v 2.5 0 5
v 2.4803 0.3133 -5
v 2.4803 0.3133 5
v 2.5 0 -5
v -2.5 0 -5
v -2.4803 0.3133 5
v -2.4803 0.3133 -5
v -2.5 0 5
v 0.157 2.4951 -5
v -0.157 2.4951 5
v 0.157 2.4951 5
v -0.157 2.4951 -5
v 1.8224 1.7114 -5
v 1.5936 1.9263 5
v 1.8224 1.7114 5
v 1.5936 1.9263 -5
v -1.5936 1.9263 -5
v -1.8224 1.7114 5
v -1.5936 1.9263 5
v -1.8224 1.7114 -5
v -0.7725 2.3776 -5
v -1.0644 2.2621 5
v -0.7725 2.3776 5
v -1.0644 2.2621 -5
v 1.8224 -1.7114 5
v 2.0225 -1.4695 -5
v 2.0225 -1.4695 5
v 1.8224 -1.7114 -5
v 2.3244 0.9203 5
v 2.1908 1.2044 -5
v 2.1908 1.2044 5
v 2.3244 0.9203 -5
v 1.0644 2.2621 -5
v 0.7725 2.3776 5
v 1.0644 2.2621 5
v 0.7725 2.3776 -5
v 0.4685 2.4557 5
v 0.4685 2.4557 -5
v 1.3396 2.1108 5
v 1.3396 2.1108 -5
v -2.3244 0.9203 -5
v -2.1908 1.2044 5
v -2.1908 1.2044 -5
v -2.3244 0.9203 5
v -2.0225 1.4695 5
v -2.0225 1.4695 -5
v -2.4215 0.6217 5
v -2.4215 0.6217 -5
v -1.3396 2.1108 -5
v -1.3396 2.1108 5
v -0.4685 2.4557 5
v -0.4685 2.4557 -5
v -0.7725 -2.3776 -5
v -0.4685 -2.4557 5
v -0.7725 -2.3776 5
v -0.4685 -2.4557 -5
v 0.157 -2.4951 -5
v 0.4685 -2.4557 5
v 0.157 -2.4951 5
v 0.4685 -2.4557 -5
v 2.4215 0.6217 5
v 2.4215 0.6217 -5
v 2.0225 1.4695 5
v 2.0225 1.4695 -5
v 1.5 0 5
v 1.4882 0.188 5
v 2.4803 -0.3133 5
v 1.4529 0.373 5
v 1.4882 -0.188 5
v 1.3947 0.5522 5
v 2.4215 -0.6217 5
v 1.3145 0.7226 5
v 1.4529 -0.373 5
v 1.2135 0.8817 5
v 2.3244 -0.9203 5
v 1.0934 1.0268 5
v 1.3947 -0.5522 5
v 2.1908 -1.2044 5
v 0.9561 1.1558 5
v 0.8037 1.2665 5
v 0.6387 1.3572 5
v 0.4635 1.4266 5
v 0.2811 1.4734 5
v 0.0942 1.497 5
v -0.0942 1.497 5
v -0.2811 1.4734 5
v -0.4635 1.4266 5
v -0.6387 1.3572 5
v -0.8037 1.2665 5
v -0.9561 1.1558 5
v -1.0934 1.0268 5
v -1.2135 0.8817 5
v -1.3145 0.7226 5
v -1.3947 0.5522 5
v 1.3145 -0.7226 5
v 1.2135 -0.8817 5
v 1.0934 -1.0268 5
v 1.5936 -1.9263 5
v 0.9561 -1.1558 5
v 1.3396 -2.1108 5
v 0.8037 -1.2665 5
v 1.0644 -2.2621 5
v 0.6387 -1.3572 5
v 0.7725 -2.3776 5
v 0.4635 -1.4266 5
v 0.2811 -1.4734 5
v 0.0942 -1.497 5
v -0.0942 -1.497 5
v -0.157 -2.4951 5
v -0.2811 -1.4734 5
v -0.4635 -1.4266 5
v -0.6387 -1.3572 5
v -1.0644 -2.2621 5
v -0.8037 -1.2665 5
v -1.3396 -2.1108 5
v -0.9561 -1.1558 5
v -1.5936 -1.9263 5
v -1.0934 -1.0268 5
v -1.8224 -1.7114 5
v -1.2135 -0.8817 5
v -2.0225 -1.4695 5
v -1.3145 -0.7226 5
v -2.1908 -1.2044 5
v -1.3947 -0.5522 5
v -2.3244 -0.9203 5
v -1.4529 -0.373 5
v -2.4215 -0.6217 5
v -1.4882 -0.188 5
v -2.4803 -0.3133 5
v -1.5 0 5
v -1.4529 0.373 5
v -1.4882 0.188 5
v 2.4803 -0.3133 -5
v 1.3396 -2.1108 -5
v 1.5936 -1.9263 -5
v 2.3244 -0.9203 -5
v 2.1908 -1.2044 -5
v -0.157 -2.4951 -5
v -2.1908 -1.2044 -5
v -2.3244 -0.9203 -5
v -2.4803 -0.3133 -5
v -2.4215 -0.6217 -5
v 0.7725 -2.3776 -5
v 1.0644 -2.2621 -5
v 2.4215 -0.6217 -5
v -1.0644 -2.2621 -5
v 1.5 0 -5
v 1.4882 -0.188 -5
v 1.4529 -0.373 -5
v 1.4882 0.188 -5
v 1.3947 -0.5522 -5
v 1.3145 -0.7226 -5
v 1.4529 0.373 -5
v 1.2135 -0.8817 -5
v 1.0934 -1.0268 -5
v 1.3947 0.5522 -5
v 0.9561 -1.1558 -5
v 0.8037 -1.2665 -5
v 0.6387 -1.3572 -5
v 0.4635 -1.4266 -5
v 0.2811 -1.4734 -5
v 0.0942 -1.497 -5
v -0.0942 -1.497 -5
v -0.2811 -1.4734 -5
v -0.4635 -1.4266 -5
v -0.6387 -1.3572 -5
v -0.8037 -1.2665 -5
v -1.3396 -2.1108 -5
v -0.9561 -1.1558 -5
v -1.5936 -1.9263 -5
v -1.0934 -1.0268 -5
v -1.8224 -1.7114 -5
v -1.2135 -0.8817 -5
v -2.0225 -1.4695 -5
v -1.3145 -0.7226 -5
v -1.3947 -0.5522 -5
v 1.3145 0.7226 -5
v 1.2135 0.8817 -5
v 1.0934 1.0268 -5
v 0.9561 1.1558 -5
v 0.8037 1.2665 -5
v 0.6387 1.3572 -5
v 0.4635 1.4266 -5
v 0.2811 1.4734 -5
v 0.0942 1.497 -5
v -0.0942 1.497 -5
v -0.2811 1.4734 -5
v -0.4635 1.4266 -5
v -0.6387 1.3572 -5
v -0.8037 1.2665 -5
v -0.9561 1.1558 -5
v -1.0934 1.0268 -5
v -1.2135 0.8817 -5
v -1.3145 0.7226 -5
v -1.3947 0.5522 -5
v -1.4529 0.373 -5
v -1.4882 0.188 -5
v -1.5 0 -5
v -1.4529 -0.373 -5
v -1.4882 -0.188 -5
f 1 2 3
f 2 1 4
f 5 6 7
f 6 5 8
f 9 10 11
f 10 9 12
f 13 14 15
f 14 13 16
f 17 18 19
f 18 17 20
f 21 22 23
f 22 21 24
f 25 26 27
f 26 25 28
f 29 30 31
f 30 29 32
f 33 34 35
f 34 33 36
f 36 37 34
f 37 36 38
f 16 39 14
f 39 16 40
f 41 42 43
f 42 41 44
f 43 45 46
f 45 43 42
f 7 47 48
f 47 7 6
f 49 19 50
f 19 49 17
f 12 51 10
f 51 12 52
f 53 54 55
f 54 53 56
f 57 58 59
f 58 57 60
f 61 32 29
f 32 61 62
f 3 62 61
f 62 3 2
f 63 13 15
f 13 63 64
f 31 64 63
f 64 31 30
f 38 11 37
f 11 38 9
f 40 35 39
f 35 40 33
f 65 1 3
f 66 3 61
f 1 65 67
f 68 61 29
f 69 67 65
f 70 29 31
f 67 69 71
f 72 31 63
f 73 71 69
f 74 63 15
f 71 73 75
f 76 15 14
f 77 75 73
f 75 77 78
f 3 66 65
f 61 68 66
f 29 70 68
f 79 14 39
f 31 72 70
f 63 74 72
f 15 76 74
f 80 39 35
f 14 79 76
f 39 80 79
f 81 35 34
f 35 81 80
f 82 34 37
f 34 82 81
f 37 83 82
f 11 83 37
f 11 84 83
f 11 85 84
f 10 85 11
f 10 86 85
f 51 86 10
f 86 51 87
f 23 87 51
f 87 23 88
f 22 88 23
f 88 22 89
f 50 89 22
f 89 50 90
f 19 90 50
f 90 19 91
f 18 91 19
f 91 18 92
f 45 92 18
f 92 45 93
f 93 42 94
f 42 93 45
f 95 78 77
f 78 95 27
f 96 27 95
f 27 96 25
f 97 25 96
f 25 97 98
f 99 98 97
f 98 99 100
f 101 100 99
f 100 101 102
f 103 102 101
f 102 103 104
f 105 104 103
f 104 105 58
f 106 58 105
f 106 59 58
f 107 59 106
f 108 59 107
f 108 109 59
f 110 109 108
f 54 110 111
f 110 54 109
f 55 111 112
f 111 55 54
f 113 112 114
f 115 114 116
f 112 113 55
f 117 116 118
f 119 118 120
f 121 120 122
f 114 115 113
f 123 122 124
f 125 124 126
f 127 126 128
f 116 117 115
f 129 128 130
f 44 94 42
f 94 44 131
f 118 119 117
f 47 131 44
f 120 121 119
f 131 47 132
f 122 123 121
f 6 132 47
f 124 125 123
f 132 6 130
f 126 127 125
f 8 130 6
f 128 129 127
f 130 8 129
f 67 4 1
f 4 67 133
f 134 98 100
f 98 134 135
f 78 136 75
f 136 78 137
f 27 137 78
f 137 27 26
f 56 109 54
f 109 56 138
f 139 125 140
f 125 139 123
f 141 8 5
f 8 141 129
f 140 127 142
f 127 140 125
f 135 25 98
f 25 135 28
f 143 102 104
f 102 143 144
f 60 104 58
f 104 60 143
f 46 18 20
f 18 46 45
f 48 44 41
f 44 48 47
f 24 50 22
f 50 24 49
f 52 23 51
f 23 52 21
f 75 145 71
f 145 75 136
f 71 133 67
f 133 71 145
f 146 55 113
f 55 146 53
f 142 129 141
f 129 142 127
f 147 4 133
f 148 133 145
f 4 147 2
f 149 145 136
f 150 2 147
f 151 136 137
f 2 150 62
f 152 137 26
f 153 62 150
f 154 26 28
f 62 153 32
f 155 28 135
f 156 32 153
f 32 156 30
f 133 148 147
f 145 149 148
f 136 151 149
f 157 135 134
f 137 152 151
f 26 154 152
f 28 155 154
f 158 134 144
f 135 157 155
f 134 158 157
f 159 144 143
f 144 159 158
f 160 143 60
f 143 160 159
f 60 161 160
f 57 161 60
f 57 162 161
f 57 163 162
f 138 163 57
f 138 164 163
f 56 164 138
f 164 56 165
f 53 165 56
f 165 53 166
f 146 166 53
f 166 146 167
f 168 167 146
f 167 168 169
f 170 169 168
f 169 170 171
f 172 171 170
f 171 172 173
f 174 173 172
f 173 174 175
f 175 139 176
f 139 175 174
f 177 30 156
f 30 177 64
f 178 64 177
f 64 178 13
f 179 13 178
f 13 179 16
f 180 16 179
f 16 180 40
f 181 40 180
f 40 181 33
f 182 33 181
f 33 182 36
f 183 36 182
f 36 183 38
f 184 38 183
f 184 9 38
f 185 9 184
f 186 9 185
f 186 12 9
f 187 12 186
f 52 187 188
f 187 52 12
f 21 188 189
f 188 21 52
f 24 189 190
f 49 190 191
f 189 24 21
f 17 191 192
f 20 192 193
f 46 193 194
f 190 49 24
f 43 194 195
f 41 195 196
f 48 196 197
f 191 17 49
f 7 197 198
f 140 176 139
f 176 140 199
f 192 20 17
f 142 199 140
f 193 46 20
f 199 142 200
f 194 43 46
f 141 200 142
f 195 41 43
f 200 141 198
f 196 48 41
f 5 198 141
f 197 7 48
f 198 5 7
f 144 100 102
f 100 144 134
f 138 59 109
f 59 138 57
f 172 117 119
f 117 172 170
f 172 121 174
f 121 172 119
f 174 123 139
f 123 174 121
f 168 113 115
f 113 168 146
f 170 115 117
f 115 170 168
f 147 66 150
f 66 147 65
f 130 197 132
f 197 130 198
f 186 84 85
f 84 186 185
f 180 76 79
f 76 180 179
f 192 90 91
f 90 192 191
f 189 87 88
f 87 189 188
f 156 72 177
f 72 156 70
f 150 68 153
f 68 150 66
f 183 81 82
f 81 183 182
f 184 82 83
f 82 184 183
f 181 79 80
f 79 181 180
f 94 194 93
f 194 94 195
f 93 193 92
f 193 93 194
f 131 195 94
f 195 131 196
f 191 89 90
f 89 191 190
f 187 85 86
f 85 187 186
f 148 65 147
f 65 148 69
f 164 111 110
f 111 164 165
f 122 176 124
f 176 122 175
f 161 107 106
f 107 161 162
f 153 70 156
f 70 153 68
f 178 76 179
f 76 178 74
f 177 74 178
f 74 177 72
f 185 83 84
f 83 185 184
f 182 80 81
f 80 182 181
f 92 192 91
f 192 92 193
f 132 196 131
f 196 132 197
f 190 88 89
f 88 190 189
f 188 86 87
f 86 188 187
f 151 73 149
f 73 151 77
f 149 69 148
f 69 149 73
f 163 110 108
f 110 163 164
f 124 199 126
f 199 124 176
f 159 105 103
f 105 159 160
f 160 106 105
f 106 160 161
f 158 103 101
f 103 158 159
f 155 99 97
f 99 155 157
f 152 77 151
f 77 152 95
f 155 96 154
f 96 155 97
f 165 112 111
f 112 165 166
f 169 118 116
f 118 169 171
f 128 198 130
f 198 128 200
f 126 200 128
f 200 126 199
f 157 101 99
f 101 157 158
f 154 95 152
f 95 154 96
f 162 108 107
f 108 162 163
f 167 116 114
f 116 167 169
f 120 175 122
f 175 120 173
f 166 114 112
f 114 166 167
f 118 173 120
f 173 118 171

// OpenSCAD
$fn = 50;


difference() {
	union() {
		translate(v = [0, 0, -5.0000000000]) {
			cylinder(h = 10, r = 2.5000000000);
		}
	}
	union() {
		translate(v = [0, 0, -100.0000000000]) {
			cylinder(h = 200, r = 1.5000000000);
		}
	}
}
